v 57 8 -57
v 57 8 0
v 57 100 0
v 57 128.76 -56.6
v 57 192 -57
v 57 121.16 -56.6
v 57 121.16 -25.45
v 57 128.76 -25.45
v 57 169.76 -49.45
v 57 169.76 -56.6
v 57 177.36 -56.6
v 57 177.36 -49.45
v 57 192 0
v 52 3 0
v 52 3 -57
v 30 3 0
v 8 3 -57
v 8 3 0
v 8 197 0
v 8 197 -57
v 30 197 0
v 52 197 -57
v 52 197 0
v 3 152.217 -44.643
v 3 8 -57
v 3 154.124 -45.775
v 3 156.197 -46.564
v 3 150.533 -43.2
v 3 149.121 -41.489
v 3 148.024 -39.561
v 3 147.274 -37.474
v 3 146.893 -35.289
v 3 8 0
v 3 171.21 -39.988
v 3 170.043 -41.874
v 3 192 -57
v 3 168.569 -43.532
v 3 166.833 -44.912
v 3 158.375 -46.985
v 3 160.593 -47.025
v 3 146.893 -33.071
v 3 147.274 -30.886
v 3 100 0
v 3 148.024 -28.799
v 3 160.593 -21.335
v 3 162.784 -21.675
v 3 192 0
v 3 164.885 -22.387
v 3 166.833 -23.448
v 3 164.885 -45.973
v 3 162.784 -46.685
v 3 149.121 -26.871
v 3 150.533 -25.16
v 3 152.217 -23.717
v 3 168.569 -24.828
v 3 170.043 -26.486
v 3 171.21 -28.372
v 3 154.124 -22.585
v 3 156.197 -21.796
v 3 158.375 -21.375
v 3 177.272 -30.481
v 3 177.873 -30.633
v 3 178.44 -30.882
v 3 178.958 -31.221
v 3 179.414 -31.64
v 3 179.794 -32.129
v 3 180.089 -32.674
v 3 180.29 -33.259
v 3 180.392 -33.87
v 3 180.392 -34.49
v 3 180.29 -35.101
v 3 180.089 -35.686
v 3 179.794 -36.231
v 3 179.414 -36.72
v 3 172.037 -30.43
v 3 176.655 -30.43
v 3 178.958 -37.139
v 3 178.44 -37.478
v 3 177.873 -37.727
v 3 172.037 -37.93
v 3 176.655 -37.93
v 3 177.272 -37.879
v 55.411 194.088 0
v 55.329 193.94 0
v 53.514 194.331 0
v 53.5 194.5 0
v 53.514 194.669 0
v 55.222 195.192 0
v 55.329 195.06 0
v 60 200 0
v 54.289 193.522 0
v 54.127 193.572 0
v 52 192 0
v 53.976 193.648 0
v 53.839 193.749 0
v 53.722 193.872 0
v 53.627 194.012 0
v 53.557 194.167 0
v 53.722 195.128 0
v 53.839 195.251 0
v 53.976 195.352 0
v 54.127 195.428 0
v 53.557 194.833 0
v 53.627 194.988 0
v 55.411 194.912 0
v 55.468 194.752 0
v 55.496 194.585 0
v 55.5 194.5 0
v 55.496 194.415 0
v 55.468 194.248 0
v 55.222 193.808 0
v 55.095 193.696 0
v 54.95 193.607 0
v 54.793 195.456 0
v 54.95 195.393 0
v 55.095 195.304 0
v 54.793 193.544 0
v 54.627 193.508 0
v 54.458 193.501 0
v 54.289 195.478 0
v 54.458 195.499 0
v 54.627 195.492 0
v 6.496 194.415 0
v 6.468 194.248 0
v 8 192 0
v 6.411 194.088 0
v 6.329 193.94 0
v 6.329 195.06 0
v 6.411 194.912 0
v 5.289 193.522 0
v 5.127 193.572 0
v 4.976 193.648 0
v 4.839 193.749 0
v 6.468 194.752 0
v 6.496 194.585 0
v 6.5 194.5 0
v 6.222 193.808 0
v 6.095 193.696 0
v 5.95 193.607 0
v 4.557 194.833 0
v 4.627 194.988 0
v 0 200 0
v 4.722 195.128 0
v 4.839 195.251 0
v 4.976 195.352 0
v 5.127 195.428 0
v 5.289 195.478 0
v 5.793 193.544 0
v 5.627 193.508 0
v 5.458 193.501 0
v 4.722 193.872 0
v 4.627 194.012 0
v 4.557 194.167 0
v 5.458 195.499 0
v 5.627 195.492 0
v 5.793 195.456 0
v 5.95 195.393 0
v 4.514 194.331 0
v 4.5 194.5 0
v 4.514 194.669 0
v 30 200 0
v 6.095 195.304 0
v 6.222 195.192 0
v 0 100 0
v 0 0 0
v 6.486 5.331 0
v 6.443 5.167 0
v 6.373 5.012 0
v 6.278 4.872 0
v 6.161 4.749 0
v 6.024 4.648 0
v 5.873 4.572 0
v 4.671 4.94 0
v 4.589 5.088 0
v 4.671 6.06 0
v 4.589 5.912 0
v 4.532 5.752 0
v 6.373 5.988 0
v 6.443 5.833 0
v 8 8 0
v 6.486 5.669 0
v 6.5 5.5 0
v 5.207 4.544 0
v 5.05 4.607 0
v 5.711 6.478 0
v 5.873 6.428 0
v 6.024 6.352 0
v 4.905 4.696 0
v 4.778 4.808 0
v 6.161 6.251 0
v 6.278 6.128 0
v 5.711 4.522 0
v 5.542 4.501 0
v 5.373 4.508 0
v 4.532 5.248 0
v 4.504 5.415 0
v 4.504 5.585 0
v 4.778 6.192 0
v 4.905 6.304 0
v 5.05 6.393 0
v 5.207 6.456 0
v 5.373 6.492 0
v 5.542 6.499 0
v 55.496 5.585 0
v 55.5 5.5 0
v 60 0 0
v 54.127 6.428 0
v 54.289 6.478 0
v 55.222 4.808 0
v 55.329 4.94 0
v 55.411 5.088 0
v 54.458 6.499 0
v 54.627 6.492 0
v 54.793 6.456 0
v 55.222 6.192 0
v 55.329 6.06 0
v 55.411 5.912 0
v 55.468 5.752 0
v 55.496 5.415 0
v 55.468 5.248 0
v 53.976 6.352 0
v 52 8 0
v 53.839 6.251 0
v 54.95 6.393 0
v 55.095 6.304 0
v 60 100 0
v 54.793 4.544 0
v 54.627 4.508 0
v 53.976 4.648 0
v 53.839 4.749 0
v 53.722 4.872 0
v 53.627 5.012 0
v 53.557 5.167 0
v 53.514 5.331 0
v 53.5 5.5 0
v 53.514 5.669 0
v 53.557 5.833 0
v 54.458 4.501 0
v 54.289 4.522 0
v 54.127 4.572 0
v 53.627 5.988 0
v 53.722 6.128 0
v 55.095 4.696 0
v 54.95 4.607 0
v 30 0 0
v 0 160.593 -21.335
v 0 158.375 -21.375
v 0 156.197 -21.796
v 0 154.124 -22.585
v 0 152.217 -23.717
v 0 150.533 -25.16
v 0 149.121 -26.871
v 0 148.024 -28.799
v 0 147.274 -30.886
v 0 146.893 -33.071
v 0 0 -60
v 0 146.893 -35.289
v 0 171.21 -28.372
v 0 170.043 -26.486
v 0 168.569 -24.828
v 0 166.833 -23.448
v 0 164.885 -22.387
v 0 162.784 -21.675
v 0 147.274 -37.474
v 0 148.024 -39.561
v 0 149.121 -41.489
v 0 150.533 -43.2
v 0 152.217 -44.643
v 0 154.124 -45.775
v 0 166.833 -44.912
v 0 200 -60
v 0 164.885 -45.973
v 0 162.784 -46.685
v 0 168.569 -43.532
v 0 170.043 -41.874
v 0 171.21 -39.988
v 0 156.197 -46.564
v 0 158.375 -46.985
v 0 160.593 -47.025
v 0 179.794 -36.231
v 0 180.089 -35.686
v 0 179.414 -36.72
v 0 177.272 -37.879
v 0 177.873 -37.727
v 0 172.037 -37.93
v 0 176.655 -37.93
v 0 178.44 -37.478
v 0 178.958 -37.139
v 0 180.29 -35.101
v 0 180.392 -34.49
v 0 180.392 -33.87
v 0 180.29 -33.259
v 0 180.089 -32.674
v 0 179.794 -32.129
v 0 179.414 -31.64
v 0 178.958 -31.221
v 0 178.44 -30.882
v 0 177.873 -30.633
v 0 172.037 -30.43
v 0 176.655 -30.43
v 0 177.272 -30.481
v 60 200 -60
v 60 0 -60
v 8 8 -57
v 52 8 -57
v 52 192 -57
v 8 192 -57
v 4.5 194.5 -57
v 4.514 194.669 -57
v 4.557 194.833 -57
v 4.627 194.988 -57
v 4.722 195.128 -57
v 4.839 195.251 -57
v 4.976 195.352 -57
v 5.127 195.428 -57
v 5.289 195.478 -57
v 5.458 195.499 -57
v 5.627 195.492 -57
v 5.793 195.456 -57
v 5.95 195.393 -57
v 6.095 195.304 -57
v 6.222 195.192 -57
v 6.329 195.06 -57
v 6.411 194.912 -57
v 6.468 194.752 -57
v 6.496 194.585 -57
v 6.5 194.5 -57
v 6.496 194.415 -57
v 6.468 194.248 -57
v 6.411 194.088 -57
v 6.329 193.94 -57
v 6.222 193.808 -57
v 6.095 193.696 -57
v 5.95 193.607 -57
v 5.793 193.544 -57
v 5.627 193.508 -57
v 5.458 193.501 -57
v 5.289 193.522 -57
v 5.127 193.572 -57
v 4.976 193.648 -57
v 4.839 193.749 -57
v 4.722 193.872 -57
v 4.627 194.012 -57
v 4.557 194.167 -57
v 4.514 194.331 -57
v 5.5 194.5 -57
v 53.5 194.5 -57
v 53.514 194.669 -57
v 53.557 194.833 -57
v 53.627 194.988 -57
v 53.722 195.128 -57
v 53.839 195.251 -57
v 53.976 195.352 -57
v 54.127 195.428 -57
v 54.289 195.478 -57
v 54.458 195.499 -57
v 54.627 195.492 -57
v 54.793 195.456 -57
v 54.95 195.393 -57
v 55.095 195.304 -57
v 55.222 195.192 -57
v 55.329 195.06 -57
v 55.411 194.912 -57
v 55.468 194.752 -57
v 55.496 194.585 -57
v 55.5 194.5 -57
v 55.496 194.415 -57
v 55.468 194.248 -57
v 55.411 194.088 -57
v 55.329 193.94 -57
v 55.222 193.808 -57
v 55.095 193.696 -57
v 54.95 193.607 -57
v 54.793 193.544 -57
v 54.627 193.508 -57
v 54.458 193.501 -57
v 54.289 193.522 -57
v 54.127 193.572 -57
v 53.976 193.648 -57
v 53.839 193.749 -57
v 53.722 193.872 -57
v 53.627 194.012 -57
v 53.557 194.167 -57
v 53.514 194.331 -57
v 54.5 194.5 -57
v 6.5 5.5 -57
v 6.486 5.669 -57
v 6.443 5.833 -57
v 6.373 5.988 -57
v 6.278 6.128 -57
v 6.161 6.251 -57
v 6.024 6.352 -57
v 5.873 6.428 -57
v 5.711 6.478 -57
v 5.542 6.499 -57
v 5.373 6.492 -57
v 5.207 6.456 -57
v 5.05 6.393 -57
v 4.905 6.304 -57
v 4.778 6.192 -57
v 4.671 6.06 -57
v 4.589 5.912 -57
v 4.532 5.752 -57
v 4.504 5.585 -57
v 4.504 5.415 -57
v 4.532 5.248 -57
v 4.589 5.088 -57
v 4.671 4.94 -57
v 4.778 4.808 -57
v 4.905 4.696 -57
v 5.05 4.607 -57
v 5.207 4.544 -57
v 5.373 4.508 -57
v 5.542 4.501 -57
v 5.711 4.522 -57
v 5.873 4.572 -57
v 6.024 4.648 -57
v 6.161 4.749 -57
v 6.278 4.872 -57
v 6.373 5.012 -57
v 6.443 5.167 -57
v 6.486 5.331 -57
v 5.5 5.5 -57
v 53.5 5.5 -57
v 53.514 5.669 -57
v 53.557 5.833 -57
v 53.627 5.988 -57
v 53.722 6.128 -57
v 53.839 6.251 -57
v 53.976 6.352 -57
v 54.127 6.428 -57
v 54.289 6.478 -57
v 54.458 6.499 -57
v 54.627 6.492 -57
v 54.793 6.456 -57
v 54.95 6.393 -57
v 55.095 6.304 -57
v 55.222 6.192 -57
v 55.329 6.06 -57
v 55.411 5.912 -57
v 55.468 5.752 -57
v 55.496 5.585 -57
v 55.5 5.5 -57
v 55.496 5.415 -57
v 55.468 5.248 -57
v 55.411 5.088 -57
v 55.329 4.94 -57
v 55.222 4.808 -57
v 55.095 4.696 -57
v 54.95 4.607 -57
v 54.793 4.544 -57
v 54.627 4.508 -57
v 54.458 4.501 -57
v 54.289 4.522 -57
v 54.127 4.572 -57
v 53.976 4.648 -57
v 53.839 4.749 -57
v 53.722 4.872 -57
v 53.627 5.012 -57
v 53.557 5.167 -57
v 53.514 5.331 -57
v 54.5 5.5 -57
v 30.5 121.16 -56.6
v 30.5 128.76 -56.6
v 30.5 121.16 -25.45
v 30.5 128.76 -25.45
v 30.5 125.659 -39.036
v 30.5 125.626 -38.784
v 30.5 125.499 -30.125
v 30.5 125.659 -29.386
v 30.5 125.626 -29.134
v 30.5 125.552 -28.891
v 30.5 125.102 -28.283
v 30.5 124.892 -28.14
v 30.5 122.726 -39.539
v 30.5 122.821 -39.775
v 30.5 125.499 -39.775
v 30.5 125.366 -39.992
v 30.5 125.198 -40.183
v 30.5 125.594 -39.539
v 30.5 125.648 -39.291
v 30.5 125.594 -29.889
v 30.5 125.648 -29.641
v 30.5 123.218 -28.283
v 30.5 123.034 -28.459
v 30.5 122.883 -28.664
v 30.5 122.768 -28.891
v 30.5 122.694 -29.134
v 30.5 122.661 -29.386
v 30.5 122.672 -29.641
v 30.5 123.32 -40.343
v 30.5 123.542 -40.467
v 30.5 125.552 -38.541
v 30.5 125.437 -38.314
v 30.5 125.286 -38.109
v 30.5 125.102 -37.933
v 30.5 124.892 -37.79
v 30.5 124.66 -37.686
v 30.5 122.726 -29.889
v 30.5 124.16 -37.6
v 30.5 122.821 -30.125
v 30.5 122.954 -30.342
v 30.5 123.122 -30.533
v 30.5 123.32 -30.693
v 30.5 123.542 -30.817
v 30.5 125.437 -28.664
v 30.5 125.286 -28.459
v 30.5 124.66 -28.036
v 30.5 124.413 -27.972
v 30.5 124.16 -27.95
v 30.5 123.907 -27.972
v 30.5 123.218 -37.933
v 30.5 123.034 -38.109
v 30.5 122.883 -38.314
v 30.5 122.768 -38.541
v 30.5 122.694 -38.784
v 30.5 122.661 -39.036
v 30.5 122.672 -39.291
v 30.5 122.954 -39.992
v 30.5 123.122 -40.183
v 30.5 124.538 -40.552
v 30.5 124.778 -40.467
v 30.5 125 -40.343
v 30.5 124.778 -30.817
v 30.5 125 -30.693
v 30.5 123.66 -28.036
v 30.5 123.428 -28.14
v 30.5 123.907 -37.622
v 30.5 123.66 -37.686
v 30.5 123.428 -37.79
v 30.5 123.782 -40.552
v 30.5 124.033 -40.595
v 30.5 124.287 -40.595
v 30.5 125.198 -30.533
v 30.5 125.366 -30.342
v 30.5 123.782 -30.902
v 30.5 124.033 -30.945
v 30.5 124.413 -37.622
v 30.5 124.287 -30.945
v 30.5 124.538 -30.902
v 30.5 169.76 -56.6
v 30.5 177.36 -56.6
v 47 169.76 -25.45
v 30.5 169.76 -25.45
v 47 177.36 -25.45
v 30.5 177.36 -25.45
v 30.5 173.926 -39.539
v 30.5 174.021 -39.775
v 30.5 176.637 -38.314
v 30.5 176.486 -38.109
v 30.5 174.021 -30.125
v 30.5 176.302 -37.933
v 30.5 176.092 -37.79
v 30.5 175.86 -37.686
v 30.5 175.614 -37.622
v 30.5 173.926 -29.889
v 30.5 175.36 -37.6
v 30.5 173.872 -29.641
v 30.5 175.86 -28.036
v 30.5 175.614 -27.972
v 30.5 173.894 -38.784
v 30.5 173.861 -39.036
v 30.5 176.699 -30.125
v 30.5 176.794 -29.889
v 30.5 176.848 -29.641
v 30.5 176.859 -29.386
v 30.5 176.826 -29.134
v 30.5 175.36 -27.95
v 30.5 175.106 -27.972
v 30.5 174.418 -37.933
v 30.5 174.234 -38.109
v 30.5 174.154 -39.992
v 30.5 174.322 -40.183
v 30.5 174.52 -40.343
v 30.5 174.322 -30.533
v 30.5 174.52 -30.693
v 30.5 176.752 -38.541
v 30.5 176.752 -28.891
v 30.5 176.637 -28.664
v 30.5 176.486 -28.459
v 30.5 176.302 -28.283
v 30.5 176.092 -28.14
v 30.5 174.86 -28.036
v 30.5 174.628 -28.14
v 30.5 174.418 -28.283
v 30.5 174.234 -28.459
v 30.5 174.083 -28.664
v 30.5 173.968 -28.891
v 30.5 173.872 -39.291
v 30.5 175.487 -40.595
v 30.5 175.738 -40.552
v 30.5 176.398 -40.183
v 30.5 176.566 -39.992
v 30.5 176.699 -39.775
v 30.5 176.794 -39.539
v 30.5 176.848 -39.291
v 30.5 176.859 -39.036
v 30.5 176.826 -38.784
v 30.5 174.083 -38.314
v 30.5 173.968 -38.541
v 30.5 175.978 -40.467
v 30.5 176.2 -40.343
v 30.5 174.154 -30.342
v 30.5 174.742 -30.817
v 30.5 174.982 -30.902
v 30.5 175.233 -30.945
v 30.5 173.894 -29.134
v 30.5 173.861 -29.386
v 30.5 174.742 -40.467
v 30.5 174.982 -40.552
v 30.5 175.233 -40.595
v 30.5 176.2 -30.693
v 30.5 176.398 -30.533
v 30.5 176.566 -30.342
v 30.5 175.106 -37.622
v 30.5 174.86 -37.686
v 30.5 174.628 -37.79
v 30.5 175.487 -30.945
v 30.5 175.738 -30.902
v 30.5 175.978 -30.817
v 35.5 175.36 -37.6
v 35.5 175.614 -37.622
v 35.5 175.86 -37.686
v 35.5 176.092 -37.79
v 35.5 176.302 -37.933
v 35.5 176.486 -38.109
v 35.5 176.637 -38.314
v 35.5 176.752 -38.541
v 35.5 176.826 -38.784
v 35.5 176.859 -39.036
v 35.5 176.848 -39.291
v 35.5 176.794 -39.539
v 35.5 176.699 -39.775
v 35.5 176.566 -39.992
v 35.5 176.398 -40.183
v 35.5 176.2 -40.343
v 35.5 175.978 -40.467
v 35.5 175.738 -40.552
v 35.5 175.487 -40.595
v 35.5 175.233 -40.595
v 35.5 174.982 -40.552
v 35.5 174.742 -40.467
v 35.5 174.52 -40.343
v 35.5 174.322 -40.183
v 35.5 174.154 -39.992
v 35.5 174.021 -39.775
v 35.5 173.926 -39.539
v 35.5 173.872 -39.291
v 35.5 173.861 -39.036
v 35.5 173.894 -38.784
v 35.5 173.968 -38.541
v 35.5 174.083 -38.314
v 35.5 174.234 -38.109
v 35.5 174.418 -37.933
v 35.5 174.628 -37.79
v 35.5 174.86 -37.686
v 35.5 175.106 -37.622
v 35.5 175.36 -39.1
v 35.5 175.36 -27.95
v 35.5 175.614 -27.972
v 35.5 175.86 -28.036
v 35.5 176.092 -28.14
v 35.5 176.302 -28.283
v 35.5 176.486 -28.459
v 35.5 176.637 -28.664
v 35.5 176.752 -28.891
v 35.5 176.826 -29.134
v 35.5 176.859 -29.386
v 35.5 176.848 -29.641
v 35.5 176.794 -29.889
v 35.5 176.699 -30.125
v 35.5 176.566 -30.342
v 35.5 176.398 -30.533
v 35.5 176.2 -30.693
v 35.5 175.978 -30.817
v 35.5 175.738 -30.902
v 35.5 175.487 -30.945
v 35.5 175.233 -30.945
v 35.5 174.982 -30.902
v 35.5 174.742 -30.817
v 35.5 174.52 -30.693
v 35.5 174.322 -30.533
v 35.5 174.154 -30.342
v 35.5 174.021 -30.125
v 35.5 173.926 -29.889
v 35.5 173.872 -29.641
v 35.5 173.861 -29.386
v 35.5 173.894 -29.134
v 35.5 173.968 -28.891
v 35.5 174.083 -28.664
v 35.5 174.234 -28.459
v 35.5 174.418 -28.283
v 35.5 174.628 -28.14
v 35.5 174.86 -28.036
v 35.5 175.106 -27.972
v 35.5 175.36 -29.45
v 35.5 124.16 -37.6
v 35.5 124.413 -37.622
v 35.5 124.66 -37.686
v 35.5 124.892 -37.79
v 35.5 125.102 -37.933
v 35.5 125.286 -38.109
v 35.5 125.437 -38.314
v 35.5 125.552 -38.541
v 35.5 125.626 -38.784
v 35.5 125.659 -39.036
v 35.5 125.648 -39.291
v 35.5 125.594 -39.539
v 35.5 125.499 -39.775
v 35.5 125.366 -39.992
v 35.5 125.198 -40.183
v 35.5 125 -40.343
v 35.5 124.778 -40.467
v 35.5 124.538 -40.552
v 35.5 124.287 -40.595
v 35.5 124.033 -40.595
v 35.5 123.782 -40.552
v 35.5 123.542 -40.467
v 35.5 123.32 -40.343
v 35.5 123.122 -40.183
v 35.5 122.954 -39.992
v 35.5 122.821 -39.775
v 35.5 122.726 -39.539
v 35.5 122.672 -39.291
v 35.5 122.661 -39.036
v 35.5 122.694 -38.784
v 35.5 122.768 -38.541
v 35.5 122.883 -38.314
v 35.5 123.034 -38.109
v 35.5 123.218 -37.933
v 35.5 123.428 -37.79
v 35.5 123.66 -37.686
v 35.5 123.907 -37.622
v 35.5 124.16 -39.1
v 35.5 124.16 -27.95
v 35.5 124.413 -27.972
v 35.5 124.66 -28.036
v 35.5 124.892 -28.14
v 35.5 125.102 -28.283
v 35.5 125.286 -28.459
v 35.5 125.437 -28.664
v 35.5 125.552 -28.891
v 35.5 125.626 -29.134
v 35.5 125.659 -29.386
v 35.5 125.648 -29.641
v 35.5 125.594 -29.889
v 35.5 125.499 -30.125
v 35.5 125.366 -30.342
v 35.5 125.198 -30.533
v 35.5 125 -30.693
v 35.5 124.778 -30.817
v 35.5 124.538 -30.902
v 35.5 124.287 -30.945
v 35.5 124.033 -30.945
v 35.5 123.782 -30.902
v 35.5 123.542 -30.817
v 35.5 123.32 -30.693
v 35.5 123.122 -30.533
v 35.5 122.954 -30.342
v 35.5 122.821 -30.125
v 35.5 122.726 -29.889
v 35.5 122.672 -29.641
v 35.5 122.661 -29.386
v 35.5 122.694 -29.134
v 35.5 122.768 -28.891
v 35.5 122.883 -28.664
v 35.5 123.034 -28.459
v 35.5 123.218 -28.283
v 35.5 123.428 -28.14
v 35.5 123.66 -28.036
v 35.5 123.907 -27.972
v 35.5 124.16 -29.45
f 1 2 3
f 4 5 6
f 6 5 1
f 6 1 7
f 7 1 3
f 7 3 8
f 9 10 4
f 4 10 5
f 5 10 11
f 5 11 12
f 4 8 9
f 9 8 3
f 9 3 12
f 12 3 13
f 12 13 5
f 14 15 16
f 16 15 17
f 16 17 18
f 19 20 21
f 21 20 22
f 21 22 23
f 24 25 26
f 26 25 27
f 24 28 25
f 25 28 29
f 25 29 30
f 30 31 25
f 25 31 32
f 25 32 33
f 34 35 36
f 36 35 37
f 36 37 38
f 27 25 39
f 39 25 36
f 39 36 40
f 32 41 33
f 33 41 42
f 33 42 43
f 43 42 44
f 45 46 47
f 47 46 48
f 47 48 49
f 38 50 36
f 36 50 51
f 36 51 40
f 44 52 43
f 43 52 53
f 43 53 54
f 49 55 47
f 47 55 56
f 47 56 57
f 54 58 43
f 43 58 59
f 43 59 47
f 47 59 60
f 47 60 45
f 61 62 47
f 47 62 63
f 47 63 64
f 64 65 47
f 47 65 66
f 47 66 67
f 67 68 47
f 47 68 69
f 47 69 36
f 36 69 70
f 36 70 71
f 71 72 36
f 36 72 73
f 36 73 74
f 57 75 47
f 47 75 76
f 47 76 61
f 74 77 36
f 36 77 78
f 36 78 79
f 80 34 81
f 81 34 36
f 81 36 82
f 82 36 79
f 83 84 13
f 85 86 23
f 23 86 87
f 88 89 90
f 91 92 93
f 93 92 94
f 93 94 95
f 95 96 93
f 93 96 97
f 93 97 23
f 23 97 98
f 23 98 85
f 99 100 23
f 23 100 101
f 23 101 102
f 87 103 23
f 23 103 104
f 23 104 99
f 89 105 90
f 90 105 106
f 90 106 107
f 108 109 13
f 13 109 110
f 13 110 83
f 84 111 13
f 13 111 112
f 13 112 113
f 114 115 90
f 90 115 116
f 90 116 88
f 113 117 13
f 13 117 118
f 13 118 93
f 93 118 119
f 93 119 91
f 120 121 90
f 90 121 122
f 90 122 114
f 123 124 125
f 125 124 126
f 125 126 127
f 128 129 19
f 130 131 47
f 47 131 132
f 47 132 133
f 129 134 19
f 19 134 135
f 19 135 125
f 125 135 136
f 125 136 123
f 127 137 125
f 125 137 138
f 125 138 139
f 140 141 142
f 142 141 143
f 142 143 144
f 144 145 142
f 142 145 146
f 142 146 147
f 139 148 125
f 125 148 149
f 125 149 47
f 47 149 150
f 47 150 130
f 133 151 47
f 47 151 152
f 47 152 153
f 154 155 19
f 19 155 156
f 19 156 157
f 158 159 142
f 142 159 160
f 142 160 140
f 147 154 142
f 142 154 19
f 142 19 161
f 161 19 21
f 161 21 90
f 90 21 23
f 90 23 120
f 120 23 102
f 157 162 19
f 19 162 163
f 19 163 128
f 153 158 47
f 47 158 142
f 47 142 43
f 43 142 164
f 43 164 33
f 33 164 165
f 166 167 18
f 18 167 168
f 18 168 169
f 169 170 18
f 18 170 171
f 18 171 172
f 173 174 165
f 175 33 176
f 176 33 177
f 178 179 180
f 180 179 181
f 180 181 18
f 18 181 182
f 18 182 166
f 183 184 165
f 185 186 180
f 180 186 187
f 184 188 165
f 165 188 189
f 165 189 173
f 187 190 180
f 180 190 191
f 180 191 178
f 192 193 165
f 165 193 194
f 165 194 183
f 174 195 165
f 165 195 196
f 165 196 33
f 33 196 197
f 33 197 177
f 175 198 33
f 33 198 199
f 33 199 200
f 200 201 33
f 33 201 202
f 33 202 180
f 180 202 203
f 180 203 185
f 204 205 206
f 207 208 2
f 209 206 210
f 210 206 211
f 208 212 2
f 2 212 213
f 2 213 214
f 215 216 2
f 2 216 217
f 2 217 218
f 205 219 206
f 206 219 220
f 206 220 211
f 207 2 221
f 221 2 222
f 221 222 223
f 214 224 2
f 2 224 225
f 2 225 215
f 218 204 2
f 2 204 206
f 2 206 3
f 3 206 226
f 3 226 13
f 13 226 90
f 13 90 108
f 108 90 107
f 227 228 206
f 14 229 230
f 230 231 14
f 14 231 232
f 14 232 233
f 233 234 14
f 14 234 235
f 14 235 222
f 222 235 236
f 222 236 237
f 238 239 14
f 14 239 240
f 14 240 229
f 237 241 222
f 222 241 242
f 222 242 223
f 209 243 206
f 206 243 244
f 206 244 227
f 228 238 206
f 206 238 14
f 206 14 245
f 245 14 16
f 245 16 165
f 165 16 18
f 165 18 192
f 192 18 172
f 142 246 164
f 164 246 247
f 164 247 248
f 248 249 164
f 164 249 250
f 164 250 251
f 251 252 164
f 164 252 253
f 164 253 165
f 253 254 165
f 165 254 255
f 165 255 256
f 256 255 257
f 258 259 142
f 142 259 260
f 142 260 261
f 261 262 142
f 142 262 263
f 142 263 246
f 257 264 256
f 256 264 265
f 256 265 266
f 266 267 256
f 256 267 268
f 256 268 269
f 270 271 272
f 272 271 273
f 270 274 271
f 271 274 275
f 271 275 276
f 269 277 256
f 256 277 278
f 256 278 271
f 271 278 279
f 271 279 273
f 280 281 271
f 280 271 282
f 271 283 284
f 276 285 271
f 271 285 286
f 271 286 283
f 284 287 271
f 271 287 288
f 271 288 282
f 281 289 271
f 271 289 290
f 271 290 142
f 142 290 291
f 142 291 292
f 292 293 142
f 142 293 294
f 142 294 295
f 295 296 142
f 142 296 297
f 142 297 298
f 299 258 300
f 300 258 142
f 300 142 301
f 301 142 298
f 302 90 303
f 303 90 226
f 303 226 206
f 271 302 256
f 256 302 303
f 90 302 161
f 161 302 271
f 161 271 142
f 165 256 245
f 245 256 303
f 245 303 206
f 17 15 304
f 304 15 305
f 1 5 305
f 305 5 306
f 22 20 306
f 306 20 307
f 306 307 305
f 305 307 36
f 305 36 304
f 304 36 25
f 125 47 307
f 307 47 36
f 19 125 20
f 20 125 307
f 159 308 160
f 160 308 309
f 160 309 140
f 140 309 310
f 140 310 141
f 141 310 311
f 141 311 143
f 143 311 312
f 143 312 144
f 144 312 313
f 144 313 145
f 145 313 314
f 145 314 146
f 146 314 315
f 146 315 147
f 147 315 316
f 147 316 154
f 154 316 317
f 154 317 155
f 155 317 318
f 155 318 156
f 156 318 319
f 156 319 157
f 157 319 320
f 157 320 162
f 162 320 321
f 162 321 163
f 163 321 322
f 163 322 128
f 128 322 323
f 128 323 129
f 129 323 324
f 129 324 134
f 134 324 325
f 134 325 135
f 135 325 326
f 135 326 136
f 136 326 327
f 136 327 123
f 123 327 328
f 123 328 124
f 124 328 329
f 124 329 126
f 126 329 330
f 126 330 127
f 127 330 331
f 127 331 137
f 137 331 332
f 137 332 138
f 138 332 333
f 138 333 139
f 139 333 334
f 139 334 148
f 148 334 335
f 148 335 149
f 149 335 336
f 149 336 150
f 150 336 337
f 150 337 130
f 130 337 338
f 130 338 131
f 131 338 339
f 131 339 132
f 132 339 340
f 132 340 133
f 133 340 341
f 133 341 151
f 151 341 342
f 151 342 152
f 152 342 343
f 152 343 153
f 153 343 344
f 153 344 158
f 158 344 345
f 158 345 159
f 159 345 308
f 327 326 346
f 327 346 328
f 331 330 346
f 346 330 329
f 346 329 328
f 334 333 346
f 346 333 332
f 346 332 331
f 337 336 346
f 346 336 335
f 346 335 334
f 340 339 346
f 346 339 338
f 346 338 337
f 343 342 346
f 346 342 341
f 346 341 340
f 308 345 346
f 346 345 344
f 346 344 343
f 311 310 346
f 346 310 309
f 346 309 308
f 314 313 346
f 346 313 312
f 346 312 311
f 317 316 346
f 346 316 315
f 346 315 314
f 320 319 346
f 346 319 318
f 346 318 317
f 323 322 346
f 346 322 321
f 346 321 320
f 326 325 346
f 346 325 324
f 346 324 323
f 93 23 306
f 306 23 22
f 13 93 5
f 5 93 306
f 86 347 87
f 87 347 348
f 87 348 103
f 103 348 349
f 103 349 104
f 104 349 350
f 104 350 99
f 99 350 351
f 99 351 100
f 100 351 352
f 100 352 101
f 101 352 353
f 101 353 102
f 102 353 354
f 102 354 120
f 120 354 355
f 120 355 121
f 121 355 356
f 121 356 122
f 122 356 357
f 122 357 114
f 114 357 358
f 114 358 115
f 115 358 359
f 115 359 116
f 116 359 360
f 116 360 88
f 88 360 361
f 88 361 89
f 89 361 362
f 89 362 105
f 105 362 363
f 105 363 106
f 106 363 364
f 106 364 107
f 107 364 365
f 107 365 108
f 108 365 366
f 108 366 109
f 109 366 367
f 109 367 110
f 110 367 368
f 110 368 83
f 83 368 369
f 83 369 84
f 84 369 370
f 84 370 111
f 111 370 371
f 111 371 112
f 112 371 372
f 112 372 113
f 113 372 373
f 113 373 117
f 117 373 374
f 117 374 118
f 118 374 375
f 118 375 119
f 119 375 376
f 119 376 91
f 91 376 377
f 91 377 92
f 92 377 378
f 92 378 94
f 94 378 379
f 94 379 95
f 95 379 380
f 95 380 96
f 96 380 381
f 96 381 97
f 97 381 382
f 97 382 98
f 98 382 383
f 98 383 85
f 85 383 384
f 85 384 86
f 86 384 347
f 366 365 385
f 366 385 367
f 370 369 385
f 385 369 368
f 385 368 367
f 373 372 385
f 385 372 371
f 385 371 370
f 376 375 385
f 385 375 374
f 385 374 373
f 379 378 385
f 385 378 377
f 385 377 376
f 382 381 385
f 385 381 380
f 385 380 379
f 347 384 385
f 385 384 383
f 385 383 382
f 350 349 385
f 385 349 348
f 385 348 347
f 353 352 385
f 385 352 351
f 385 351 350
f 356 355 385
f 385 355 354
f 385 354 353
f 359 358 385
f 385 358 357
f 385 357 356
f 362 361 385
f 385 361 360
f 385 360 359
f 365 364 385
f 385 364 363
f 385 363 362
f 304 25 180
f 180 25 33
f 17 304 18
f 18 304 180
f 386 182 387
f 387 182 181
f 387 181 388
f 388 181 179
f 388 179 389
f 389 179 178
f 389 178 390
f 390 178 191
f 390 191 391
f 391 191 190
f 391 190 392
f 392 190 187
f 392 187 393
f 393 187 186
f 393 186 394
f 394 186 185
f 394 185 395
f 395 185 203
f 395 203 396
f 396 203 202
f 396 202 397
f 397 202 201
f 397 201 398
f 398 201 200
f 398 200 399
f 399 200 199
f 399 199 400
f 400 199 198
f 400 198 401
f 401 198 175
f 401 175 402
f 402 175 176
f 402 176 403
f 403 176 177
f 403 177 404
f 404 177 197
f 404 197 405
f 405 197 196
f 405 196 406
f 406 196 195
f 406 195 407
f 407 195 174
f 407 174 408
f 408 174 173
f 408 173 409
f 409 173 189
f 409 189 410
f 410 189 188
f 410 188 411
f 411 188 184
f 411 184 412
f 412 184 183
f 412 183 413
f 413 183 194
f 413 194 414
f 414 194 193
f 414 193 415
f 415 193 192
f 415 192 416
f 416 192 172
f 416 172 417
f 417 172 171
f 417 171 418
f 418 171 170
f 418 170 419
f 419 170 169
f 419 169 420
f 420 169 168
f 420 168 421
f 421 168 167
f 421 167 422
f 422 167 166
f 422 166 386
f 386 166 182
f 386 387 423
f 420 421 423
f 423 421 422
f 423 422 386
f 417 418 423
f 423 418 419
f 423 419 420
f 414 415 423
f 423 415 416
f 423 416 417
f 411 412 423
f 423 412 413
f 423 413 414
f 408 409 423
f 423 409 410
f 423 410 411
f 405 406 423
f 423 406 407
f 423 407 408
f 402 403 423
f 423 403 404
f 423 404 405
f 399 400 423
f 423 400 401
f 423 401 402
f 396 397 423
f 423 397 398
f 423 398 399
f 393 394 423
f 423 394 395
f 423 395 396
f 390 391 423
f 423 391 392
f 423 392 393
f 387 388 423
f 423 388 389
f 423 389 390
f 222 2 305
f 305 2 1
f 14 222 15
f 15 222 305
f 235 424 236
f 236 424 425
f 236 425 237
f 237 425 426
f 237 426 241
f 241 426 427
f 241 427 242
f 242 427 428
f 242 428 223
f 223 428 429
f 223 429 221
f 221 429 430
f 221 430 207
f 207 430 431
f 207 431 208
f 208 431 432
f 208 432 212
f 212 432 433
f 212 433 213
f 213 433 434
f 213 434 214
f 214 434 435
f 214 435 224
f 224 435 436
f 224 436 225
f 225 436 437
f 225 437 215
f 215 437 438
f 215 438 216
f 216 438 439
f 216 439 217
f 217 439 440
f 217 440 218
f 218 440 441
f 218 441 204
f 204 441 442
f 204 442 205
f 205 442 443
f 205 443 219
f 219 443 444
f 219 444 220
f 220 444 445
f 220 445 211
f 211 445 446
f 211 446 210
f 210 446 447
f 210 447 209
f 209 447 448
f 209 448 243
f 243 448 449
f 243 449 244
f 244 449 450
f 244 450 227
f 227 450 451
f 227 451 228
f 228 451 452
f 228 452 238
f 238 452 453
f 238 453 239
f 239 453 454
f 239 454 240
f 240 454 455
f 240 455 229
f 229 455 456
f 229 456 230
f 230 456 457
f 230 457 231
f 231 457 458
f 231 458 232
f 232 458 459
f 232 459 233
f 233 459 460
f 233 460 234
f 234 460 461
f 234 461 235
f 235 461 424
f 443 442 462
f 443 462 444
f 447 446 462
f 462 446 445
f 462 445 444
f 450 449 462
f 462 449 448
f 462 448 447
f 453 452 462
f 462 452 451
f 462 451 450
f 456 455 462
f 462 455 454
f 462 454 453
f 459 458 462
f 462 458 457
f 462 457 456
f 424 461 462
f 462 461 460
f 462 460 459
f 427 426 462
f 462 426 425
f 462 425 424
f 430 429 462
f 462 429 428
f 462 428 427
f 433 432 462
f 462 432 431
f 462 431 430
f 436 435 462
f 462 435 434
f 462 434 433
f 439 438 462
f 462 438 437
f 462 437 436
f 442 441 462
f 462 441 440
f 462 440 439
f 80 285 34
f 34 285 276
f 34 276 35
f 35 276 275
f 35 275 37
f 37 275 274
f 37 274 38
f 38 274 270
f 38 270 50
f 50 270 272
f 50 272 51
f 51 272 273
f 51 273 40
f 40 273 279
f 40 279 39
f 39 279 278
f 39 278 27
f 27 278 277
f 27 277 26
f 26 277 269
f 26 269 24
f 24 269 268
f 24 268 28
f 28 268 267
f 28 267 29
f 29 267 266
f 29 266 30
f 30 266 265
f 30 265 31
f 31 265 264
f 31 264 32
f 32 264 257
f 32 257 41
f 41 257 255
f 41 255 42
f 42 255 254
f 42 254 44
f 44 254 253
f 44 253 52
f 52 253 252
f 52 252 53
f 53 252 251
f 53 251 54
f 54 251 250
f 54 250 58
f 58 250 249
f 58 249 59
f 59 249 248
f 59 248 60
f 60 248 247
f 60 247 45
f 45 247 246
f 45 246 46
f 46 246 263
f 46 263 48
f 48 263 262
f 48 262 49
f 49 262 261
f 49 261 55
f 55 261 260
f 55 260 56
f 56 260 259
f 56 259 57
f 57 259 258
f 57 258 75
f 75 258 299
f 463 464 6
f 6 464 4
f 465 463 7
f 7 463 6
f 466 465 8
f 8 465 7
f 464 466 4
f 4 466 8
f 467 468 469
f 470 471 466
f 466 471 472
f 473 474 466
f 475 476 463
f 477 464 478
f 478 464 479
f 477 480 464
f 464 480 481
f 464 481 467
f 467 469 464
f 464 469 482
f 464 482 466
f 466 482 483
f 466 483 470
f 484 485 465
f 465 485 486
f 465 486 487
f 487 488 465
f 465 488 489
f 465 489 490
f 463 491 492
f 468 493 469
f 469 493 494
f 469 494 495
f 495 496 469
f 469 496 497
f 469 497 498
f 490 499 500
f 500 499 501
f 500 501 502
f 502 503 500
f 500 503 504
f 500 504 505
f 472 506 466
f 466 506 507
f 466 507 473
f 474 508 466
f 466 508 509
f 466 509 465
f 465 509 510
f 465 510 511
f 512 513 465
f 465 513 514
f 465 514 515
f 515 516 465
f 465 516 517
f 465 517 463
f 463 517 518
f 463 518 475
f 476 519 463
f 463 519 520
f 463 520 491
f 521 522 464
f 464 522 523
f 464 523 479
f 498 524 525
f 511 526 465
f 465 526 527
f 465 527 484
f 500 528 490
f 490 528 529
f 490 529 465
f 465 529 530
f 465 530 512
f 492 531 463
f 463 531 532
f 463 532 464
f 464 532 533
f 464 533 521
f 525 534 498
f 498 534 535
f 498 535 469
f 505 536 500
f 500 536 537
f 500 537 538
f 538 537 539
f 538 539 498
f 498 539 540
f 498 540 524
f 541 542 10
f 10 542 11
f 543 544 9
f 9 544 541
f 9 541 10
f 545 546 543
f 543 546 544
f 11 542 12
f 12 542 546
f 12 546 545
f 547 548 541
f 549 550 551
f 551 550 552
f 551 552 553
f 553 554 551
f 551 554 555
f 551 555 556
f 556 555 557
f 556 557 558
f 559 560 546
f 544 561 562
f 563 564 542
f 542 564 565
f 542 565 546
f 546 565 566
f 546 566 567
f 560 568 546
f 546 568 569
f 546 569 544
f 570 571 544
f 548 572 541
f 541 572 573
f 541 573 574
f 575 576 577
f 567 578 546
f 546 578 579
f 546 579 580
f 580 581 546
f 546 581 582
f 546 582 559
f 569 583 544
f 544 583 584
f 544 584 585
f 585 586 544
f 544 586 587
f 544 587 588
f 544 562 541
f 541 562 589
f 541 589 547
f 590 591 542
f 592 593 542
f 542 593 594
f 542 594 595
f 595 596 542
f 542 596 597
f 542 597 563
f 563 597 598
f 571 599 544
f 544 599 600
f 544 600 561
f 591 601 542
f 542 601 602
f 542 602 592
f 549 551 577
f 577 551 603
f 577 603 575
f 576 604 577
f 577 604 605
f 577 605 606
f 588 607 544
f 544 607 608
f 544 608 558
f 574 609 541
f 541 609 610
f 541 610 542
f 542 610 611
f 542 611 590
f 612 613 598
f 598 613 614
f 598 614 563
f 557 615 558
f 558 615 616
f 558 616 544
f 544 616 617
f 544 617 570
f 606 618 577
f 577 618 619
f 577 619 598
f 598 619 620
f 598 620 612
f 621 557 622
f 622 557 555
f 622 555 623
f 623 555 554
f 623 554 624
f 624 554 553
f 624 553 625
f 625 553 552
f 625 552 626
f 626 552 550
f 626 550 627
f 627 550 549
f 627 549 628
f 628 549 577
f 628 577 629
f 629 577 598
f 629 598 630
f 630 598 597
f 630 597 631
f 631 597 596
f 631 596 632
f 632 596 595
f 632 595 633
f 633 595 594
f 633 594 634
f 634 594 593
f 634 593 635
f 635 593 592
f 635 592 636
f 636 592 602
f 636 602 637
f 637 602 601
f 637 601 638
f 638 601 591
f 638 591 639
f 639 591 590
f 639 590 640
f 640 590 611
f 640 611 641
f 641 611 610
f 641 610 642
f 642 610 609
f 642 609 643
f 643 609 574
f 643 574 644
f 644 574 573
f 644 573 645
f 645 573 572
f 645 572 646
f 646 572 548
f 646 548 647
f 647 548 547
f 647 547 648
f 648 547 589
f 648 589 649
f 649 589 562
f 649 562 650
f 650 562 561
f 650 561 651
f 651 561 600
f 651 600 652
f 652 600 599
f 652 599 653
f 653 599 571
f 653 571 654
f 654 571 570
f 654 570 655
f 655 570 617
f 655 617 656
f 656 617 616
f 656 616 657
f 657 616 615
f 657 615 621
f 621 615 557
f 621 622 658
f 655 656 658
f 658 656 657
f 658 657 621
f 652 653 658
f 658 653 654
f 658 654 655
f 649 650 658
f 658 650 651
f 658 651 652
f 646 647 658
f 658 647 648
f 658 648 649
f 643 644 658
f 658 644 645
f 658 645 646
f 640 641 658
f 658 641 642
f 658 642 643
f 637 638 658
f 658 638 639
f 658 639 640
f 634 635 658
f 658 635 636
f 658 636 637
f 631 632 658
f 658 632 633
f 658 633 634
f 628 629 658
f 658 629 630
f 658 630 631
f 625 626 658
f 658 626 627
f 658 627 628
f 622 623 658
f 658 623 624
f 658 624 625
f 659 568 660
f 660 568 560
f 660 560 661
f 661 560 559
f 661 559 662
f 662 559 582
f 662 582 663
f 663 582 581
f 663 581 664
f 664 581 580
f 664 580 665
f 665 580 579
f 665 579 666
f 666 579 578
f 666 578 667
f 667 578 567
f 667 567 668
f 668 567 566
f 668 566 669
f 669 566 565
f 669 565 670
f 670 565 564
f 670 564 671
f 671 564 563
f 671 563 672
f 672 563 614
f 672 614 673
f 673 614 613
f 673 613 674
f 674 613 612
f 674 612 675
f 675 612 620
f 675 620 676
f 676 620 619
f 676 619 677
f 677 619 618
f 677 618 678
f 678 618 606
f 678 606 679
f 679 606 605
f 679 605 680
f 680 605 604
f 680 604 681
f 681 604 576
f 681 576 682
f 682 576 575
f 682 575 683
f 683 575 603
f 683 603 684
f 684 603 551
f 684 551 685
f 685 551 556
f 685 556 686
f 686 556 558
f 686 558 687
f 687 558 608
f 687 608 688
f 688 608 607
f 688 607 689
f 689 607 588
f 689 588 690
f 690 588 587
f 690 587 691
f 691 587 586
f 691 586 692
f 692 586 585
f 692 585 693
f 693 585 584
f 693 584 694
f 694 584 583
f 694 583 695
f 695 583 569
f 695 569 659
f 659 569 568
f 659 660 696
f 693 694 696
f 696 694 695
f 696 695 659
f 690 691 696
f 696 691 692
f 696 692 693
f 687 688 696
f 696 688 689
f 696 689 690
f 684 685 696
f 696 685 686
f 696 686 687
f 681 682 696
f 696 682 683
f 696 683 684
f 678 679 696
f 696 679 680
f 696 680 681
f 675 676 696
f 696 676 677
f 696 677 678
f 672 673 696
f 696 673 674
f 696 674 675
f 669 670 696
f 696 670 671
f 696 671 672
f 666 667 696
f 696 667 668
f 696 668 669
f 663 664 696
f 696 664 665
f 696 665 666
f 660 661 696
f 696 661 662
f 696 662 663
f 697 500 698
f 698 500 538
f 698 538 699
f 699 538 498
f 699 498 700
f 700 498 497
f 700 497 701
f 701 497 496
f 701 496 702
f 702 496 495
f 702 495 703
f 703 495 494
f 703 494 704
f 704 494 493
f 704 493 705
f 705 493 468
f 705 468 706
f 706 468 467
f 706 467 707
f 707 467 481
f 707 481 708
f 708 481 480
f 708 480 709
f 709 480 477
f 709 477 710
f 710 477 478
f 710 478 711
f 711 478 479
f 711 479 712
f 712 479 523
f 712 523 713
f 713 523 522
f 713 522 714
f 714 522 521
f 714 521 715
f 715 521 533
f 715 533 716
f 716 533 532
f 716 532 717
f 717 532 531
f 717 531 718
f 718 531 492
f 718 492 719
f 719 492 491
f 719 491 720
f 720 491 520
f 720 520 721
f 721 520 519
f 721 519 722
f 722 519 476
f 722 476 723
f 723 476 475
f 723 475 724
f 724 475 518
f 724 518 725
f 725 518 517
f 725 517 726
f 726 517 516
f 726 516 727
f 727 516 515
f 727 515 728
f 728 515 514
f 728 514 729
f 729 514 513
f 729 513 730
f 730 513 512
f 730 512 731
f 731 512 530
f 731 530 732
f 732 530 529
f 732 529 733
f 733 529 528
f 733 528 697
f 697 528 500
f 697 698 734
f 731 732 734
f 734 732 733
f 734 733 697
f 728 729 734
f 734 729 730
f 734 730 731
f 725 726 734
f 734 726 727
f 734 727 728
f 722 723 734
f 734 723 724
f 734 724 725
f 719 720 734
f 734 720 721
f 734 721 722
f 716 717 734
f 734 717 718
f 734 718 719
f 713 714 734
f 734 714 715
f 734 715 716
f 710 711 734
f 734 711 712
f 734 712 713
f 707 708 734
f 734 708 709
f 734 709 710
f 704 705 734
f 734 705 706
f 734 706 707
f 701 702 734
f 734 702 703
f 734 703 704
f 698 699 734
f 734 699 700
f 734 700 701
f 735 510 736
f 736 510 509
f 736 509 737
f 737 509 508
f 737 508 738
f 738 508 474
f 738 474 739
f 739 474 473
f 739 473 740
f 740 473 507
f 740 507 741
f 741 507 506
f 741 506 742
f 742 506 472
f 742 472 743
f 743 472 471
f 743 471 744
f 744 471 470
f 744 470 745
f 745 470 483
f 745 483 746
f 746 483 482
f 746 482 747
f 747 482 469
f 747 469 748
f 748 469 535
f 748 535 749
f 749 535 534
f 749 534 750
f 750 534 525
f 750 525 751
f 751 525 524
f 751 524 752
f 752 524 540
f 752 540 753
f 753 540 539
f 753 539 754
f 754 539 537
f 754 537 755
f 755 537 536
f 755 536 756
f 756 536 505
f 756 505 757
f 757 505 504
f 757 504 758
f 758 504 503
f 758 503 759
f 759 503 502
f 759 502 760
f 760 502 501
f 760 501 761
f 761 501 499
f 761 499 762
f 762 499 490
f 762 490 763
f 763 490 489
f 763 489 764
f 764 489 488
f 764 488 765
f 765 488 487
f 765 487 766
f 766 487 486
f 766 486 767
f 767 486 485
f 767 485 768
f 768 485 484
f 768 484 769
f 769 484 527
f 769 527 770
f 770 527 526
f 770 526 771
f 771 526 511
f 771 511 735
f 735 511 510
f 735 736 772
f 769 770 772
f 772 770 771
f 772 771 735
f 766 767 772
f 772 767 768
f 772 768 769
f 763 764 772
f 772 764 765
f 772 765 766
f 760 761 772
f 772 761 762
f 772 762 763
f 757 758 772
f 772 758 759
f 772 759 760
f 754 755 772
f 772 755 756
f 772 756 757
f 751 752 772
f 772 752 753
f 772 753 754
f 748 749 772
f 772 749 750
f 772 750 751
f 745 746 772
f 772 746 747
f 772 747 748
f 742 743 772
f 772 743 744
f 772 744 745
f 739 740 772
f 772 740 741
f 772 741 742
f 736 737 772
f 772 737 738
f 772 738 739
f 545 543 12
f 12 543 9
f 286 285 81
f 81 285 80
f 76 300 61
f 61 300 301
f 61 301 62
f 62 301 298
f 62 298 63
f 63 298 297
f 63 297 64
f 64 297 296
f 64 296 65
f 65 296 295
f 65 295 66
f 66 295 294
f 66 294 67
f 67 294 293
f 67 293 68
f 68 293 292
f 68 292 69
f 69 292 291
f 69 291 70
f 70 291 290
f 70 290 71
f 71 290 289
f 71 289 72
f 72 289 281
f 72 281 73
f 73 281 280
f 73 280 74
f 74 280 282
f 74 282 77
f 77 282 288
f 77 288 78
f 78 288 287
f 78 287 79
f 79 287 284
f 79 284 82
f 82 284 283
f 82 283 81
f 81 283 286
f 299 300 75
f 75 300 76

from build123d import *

# Parameters (mm, degrees)
SZKIC1_W                    = 60
SZKIC1_H                    = 60
DODANIE_WYCI_GNI_CIE1_DEPTH = 200
SKORUPA1_T                  = -3
SZKIC2_W                    = 5
SZKIC2_H                    = 5
SZKIC2_R                    = 1
DODANIE_WYCI_GNI_CIE5_DEPTH = 57
SZKIC3_W                    = 5
SZKIC3_H                    = 5
SZKIC3_R                    = 1
DODANIE_WYCI_GNI_CIE6_DEPTH = 57
SZKIC4_W                    = 5
SZKIC4_H                    = 5
SZKIC4_R                    = 1
DODANIE_WYCI_GNI_CIE7_DEPTH = 57
SZKIC5_W                    = 5
SZKIC5_H                    = 5
SZKIC5_R                    = 1
DODANIE_WYCI_GNI_CIE8_DEPTH = 57
SZKIC10_R                   = 12.875
WYTNIJ_WYCI_GNI_CIE3_DEPTH  = 3
SZKIC12_W                   = 31.15
SZKIC12_H                   = 7.6
DODANIE_WYCI_GNI_CIE9_DEPTH = 26.5
SZKIC13_R                   = 1.5
WYTNIJ_WYCI_GNI_CIE4_DEPTH  = 5
SZKIC15_R                   = 1.5
WYTNIJ_WYCI_GNI_CIE5_DEPTH  = 5
WYTNIJ_WYCI_GNI_CIE6_DEPTH  = 10
WYTNIJ_WYCI_GNI_CIE7_DEPTH  = 10


with BuildPart() as part:
    # Szkic1 → Dodanie-wyciągnięcie1 (new body)
    with BuildSketch(Plane(origin=(0, 0, 0), x_dir=(1, 0, 0), z_dir=(0, 1, 0))):
        with Locations((30, 30)):
            Rectangle(SZKIC1_W, SZKIC1_H)
    extrude(amount=DODANIE_WYCI_GNI_CIE1_DEPTH)

    # Skorupa1
    skorupa1_openings = [part.faces().sort_by_distance(p)[0] for p in [
        (30, 100, 0),
    ]]
    offset(amount=SKORUPA1_T, openings=skorupa1_openings, kind=Kind.INTERSECTION)

    # Szkic2 → Dodanie-wyciągnięcie5 (add)
    with BuildSketch(Plane.XY.offset(-57)):
        with Locations((5.5, 194.5)):
            Rectangle(SZKIC2_W, SZKIC2_H)
        with Locations(Location((5.5, 194.5, 0), (0, 0, 180))):
            Circle(SZKIC2_R, mode=Mode.SUBTRACT)
    extrude(amount=DODANIE_WYCI_GNI_CIE5_DEPTH)

    # Szkic3 → Dodanie-wyciągnięcie6 (add)
    with BuildSketch(Plane.XY.offset(-57)):
        with Locations((54.5, 194.5)):
            Rectangle(SZKIC3_W, SZKIC3_H)
        with Locations(Location((54.5, 194.5, 0), (0, 0, 180))):
            Circle(SZKIC3_R, mode=Mode.SUBTRACT)
    extrude(amount=DODANIE_WYCI_GNI_CIE6_DEPTH)

    # Szkic4 → Dodanie-wyciągnięcie7 (add)
    with BuildSketch(Plane.XY):
        with Locations((5.5, 5.5)):
            Rectangle(SZKIC4_W, SZKIC4_H)
        with Locations((5.5, 5.5)):
            Circle(SZKIC4_R, mode=Mode.SUBTRACT)
    extrude(amount=-DODANIE_WYCI_GNI_CIE7_DEPTH)

    # Szkic5 → Dodanie-wyciągnięcie8 (add)
    with BuildSketch(Plane.XY.offset(-57)):
        with Locations((54.5, 5.5)):
            Rectangle(SZKIC5_W, SZKIC5_H)
        with Locations(Location((54.5, 5.5, 0), (0, 0, 180))):
            Circle(SZKIC5_R, mode=Mode.SUBTRACT)
    extrude(amount=DODANIE_WYCI_GNI_CIE8_DEPTH)

    # Szkic10 → Wytnij-wyciągnięcie3 (cut)
    with BuildSketch(Plane.ZY):
        with Locations((-34.18, 159.72)):
            Circle(SZKIC10_R)
    extrude(amount=-WYTNIJ_WYCI_GNI_CIE3_DEPTH, mode=Mode.SUBTRACT)

    # Szkic12 → Dodanie-wyciągnięcie9 (add)
    with BuildSketch(Plane.ZY.offset(-57)):
        with Locations((-41.025, 173.56)):
            Rectangle(SZKIC12_W, SZKIC12_H)
        with Locations((-41.025, 124.96)):
            Rectangle(SZKIC12_W, SZKIC12_H)
    extrude(amount=DODANIE_WYCI_GNI_CIE9_DEPTH)

    # Szkic13 → Wytnij-wyciągnięcie4 (cut)
    with BuildSketch(Plane.ZY.offset(-30.5)):
        with Locations((-29.45, 175.36)):
            Circle(SZKIC13_R)
        with Locations((-39.1, 175.36)):
            Circle(SZKIC13_R)
    extrude(amount=-WYTNIJ_WYCI_GNI_CIE4_DEPTH, mode=Mode.SUBTRACT)

    # Szkic15 → Wytnij-wyciągnięcie5 (cut)
    with BuildSketch(Plane.ZY.offset(-30.5)):
        with Locations((-29.45, 124.16)):
            Circle(SZKIC15_R)
        with Locations((-39.1, 124.16)):
            Circle(SZKIC15_R)
    extrude(amount=-WYTNIJ_WYCI_GNI_CIE5_DEPTH, mode=Mode.SUBTRACT)

    # Szkic16 → Wytnij-wyciągnięcie6 (cut)
    with BuildSketch(Plane(origin=(0, 177.36, 0), x_dir=(1, 0, 0), z_dir=(0, 1, 0))):
        Polygon((57, 25.45), (57, 49.45), (47, 25.45), align=None)
    extrude(amount=-WYTNIJ_WYCI_GNI_CIE6_DEPTH, mode=Mode.SUBTRACT)

    # Szkic17 → Wytnij-wyciągnięcie7 (cut)
    with BuildSketch(Plane.ZY):
        with BuildLine():
            Line((-37.93, 172.345), (-37.93, 176.655))
            ThreePointArc((-37.93, 176.655), (-34.18, 180.405), (-30.43, 176.655))
            Line((-30.43, 176.655), (-30.43, 172.345))
            Line((-30.43, 172.345), (-30.43, 171.694400649))
            Line((-30.43, 171.694400649), (-37.93, 171.775211529))
            Line((-37.93, 171.775211529), (-37.93, 172.345))
        make_face()
    extrude(amount=-WYTNIJ_WYCI_GNI_CIE7_DEPTH, mode=Mode.SUBTRACT)


solid = part.part
